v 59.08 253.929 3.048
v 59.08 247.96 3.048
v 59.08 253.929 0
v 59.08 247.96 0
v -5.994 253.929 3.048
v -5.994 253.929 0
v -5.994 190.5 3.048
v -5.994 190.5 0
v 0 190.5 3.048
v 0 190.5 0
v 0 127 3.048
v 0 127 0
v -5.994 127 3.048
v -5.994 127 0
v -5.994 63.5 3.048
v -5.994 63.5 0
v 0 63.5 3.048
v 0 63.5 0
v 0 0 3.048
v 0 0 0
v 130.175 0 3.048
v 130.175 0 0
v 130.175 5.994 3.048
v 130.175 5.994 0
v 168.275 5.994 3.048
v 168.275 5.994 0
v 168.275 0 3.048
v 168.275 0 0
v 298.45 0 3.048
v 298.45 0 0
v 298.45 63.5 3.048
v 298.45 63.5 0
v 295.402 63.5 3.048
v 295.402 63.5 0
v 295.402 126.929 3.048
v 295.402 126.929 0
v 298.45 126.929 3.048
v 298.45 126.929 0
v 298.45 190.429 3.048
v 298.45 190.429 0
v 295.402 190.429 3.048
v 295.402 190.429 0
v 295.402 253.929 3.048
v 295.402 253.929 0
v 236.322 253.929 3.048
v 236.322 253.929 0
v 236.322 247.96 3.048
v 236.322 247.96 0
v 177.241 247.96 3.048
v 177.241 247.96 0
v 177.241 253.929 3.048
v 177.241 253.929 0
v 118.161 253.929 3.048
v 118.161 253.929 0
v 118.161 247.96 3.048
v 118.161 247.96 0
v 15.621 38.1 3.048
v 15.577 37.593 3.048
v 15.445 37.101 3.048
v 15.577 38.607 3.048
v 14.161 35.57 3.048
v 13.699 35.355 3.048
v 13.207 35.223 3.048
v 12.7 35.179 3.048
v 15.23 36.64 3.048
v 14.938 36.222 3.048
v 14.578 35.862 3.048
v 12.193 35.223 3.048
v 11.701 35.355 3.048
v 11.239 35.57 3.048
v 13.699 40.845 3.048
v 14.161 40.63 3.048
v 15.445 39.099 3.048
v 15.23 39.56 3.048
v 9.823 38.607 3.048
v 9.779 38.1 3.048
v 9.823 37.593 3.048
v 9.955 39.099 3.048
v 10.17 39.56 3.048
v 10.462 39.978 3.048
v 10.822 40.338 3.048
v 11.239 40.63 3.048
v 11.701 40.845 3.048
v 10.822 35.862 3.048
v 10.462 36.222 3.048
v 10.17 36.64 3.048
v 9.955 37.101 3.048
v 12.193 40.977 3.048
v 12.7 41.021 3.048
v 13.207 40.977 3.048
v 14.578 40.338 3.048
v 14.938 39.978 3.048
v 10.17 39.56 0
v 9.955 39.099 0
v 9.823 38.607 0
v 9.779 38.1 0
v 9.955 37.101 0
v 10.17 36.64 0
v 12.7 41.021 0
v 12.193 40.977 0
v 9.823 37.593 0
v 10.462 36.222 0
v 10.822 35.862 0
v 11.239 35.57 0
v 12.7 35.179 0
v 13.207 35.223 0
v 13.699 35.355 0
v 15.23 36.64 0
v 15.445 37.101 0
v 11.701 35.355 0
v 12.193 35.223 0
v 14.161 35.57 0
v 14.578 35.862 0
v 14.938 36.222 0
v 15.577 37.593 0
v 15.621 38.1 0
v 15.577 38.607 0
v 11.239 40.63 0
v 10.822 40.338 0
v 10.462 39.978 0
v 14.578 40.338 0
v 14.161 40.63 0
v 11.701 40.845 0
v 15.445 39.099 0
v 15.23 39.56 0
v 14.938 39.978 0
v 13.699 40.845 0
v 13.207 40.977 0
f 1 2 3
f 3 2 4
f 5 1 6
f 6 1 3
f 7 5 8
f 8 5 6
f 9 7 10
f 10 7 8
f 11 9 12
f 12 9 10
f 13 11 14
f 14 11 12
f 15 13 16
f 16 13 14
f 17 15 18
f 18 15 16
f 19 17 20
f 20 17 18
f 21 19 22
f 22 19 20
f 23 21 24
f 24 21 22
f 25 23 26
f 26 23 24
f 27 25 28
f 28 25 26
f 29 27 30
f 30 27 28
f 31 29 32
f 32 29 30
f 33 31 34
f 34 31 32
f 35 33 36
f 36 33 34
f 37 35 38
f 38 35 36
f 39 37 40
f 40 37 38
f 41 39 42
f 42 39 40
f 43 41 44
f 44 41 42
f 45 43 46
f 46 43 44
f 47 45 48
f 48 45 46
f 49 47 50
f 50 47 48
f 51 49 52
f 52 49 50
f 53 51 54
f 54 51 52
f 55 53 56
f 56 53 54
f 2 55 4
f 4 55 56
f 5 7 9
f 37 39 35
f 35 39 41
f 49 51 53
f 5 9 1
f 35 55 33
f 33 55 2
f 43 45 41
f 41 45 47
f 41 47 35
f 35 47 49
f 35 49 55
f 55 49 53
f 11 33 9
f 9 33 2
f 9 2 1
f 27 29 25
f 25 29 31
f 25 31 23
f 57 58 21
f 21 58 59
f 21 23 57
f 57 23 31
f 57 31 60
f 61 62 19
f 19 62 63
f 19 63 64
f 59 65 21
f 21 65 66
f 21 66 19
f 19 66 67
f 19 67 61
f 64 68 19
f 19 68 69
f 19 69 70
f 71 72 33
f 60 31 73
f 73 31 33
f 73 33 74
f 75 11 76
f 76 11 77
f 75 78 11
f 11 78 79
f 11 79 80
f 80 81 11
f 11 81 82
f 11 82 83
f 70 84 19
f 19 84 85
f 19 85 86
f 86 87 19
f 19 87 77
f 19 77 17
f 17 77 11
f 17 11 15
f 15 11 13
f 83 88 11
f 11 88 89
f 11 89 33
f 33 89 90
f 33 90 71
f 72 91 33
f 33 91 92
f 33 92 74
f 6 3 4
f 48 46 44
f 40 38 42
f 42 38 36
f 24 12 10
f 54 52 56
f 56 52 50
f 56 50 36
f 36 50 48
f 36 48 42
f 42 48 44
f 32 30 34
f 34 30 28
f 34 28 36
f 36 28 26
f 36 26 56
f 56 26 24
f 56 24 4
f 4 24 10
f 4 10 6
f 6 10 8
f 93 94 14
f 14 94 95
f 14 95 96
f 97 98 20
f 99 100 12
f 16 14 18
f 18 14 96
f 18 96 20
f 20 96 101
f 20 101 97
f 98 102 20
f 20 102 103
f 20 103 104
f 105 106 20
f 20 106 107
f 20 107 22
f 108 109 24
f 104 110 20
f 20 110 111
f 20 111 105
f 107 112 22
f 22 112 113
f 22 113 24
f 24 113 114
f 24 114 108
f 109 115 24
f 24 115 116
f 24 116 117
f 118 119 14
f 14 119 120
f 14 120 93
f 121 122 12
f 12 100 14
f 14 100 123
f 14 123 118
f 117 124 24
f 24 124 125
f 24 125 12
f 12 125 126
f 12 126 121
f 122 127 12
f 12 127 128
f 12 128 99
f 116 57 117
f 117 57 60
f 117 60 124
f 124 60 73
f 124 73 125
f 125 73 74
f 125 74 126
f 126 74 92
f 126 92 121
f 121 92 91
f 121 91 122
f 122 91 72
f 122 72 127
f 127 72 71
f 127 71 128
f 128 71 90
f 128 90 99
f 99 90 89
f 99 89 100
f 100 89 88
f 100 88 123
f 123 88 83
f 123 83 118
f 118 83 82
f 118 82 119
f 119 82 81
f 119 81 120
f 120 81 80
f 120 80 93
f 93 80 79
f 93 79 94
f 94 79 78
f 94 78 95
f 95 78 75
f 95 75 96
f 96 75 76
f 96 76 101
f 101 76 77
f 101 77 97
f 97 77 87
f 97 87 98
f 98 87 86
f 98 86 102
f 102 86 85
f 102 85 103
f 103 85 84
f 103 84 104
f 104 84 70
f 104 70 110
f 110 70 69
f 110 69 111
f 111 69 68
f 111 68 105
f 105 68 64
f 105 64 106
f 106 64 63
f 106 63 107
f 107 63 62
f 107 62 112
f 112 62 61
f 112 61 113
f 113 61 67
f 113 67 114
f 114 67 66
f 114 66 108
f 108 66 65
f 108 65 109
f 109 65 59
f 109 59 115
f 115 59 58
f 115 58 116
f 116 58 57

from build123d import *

# Parameters (mm, degrees)
BOSS_EXTRUDE1_DEPTH = 3.048
CUT_EXTRUDE1_REACH  = 5.048
SKETCH2_R           = 2.921


with BuildPart() as part:
    # Sketch1 → Boss-Extrude1 (new body)
    with BuildSketch(Plane.XY):
        Polygon((130.175, 0), (130.175, 5.9944), (168.275, 5.9944), (168.275, 0), (298.45, 0), (298.45, 63.5), (295.402, 63.5), (295.402, 126.929256228), (298.45, 126.929256228), (298.45, 190.429256228), (295.402, 190.429256228), (295.402, 253.929256228), (236.3216, 253.929256228), (236.3216, 247.960256228), (177.2412, 247.960256228), (177.2412, 253.929256228), (118.1608, 253.929256228), (118.1608, 247.960256228), (59.0804, 247.960256228), (59.0804, 253.929256228), (-5.9944, 253.929256228), (-5.9944, 190.5), (0, 190.5), (0, 127), (-5.9944, 127), (-5.9944, 63.5), (0, 63.5), (0, 0), align=None)
    extrude(amount=BOSS_EXTRUDE1_DEPTH)

    # Sketch2 → Cut-Extrude1 (cut, up to next)
    with BuildSketch(Plane.XY.offset(3.048), mode=Mode.PRIVATE) as cut_extrude1_sk1:
        with Locations((12.7, 38.1)):
            Circle(SKETCH2_R)
    cut_extrude1_tool1 = extrude(cut_extrude1_sk1.sketch, amount=-CUT_EXTRUDE1_REACH, mode=Mode.PRIVATE) & part.part
    add(cut_extrude1_tool1.solids().sort_by_distance((12.7, 38.1, 3.048))[0], mode=Mode.SUBTRACT)


solid = part.part
